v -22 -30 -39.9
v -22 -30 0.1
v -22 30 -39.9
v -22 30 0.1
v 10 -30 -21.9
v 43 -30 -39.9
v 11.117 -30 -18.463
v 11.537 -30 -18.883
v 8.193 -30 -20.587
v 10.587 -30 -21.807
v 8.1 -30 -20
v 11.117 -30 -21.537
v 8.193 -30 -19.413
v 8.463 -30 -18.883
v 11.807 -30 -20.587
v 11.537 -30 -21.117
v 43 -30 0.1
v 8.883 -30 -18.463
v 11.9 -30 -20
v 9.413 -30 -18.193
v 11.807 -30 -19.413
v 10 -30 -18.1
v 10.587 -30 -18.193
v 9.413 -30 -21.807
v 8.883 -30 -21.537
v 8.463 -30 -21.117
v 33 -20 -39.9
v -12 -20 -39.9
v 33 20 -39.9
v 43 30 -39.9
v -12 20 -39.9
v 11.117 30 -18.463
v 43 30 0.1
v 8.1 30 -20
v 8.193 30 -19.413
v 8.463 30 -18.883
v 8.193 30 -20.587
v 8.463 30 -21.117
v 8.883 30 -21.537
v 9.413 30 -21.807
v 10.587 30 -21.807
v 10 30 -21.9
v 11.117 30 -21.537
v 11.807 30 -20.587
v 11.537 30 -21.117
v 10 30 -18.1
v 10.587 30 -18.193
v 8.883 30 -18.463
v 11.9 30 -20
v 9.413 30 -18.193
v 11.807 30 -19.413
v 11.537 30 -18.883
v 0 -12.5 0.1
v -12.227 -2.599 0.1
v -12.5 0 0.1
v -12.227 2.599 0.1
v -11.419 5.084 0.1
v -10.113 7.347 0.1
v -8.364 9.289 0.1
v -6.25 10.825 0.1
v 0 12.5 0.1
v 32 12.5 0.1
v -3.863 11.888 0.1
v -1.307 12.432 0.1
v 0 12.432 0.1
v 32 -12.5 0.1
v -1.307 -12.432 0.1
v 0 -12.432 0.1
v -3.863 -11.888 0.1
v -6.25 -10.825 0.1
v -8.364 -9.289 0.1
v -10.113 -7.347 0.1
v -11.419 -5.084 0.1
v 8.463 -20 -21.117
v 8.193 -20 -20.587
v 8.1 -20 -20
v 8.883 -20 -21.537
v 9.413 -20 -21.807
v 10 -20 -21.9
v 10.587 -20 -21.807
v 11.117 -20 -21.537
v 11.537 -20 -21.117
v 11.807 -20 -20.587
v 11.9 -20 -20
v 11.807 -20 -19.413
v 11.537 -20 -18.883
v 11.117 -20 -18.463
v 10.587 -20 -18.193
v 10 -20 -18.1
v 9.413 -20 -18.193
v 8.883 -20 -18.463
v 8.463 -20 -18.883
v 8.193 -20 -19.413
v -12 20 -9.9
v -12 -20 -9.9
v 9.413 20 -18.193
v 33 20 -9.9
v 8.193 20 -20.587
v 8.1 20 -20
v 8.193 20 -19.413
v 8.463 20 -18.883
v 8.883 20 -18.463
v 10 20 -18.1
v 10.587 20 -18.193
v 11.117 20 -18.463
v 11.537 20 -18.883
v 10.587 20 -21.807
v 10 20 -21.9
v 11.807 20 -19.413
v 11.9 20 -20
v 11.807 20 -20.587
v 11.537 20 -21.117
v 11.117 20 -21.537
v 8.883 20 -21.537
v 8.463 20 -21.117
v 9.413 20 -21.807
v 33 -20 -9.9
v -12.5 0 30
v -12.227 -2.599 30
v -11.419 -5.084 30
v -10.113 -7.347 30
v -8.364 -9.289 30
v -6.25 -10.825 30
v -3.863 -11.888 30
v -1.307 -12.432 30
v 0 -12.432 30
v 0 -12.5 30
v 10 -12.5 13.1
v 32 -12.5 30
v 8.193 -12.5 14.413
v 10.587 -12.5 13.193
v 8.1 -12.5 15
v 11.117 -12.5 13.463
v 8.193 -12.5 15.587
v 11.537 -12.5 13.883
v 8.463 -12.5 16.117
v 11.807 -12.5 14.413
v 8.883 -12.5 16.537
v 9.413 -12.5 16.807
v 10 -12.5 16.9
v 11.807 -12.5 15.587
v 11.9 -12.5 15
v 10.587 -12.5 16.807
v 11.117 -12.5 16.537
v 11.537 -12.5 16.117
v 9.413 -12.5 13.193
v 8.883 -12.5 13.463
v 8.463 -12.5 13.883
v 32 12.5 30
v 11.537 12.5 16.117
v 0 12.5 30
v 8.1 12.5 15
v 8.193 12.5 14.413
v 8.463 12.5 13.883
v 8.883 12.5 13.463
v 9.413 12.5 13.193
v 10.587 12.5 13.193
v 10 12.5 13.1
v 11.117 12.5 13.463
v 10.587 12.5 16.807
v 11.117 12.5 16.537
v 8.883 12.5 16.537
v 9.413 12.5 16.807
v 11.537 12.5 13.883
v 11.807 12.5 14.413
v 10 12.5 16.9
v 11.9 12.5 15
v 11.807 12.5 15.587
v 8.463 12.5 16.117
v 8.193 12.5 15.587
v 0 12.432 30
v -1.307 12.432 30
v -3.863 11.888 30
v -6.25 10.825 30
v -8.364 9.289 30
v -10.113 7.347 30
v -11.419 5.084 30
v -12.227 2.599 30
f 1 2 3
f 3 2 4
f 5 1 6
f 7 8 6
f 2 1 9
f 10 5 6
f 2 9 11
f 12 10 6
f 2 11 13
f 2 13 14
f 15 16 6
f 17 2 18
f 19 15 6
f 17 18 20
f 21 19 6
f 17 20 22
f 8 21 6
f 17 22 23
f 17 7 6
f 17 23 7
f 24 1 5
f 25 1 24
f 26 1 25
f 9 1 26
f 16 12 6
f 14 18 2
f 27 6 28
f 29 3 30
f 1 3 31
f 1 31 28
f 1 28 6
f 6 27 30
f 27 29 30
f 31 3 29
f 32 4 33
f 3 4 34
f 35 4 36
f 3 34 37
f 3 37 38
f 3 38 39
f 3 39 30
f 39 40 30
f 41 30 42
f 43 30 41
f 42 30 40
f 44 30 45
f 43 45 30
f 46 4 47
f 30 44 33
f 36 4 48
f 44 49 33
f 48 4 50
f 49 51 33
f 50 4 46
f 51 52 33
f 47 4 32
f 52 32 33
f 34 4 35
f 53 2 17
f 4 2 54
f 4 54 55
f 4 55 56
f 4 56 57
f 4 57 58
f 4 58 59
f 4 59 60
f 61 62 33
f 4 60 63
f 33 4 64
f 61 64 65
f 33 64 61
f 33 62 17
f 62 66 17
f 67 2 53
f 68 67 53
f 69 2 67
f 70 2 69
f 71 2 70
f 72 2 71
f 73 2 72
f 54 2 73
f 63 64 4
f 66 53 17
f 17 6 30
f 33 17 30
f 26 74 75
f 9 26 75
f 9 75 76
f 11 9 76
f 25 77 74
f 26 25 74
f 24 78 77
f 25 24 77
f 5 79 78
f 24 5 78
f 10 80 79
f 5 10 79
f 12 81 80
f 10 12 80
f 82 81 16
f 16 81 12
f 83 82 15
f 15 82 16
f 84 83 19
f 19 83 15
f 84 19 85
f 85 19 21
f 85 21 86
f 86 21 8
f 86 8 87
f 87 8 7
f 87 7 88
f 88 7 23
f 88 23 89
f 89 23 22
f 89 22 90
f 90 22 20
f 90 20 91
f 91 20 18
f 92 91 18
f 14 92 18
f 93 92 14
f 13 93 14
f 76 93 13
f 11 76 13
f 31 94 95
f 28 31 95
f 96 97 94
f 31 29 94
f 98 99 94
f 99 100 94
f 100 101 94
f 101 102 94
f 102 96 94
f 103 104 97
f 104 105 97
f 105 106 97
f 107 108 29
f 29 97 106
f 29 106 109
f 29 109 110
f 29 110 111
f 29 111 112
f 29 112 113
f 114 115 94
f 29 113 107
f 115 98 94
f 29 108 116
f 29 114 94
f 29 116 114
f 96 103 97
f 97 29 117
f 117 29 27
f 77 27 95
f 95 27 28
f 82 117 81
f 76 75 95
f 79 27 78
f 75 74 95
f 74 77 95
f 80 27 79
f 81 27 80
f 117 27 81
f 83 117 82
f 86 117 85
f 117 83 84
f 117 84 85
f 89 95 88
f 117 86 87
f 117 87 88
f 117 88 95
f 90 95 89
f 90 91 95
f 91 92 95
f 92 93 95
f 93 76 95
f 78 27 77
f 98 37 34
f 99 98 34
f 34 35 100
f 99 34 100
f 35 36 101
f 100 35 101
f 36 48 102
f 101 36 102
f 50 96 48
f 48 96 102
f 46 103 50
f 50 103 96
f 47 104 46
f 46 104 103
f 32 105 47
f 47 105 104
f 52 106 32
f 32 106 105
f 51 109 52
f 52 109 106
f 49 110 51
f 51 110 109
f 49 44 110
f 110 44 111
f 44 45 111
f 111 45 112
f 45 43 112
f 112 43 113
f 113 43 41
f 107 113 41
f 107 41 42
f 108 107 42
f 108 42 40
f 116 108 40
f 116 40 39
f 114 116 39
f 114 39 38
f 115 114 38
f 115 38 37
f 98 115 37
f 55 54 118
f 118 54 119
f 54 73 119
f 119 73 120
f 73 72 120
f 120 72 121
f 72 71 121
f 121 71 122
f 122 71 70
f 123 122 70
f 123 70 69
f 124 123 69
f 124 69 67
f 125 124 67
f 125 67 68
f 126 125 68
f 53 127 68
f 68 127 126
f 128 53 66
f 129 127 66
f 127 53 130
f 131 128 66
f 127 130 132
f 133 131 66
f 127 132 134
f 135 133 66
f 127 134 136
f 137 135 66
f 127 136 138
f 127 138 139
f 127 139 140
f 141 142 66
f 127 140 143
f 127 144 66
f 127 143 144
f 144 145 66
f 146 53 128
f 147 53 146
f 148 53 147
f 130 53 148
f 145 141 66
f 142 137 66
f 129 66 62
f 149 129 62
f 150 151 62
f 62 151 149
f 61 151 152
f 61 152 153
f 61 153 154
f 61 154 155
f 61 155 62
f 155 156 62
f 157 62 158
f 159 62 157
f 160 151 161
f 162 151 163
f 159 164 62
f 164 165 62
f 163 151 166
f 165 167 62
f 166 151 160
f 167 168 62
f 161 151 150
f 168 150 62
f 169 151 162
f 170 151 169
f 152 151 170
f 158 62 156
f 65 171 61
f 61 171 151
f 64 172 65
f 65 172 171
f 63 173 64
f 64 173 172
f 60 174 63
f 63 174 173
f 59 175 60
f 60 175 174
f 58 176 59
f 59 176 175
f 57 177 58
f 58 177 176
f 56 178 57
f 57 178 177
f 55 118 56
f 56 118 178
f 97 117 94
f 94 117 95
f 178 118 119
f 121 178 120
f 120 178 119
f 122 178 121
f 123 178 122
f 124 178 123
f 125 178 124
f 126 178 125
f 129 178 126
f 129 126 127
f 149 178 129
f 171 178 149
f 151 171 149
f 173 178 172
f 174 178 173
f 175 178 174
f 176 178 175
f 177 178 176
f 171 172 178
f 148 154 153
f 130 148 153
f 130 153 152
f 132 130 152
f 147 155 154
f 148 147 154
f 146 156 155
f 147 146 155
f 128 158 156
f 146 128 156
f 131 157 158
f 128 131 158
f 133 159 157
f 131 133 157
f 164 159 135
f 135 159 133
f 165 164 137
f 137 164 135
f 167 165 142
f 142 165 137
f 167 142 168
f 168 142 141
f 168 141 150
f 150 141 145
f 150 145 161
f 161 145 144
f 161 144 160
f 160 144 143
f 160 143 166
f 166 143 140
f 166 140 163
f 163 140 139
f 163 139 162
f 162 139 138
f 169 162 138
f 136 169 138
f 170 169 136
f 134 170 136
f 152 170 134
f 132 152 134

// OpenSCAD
difference() {
	union() {
		union() {
			cylinder( r=25/2, h=30 );
			translate( [0,-25/2,0] ) cube( [32,25,30] );
		}
		
		translate( [-22,-25/2-(60-25)/2,-39.9] ) 
		difference() {
			cube( [ 65, 60, 40 ] );
			translate( [10,10,-20] ) cube( [ 45, 40, 50 ] );
		}
	}
	translate( [10,-60,-20] ) 
	rotate( 90, [0,0,1] )
	rotate( 90, [0,1,0] )
	cylinder( r=1.9, h=100, $fn=20 );

	translate( [10,-60,15] ) 
	rotate( 90, [0,0,1] )
	rotate( 90, [0,1,0] )
	cylinder( r=1.9, h=100, $fn=20 );

}
